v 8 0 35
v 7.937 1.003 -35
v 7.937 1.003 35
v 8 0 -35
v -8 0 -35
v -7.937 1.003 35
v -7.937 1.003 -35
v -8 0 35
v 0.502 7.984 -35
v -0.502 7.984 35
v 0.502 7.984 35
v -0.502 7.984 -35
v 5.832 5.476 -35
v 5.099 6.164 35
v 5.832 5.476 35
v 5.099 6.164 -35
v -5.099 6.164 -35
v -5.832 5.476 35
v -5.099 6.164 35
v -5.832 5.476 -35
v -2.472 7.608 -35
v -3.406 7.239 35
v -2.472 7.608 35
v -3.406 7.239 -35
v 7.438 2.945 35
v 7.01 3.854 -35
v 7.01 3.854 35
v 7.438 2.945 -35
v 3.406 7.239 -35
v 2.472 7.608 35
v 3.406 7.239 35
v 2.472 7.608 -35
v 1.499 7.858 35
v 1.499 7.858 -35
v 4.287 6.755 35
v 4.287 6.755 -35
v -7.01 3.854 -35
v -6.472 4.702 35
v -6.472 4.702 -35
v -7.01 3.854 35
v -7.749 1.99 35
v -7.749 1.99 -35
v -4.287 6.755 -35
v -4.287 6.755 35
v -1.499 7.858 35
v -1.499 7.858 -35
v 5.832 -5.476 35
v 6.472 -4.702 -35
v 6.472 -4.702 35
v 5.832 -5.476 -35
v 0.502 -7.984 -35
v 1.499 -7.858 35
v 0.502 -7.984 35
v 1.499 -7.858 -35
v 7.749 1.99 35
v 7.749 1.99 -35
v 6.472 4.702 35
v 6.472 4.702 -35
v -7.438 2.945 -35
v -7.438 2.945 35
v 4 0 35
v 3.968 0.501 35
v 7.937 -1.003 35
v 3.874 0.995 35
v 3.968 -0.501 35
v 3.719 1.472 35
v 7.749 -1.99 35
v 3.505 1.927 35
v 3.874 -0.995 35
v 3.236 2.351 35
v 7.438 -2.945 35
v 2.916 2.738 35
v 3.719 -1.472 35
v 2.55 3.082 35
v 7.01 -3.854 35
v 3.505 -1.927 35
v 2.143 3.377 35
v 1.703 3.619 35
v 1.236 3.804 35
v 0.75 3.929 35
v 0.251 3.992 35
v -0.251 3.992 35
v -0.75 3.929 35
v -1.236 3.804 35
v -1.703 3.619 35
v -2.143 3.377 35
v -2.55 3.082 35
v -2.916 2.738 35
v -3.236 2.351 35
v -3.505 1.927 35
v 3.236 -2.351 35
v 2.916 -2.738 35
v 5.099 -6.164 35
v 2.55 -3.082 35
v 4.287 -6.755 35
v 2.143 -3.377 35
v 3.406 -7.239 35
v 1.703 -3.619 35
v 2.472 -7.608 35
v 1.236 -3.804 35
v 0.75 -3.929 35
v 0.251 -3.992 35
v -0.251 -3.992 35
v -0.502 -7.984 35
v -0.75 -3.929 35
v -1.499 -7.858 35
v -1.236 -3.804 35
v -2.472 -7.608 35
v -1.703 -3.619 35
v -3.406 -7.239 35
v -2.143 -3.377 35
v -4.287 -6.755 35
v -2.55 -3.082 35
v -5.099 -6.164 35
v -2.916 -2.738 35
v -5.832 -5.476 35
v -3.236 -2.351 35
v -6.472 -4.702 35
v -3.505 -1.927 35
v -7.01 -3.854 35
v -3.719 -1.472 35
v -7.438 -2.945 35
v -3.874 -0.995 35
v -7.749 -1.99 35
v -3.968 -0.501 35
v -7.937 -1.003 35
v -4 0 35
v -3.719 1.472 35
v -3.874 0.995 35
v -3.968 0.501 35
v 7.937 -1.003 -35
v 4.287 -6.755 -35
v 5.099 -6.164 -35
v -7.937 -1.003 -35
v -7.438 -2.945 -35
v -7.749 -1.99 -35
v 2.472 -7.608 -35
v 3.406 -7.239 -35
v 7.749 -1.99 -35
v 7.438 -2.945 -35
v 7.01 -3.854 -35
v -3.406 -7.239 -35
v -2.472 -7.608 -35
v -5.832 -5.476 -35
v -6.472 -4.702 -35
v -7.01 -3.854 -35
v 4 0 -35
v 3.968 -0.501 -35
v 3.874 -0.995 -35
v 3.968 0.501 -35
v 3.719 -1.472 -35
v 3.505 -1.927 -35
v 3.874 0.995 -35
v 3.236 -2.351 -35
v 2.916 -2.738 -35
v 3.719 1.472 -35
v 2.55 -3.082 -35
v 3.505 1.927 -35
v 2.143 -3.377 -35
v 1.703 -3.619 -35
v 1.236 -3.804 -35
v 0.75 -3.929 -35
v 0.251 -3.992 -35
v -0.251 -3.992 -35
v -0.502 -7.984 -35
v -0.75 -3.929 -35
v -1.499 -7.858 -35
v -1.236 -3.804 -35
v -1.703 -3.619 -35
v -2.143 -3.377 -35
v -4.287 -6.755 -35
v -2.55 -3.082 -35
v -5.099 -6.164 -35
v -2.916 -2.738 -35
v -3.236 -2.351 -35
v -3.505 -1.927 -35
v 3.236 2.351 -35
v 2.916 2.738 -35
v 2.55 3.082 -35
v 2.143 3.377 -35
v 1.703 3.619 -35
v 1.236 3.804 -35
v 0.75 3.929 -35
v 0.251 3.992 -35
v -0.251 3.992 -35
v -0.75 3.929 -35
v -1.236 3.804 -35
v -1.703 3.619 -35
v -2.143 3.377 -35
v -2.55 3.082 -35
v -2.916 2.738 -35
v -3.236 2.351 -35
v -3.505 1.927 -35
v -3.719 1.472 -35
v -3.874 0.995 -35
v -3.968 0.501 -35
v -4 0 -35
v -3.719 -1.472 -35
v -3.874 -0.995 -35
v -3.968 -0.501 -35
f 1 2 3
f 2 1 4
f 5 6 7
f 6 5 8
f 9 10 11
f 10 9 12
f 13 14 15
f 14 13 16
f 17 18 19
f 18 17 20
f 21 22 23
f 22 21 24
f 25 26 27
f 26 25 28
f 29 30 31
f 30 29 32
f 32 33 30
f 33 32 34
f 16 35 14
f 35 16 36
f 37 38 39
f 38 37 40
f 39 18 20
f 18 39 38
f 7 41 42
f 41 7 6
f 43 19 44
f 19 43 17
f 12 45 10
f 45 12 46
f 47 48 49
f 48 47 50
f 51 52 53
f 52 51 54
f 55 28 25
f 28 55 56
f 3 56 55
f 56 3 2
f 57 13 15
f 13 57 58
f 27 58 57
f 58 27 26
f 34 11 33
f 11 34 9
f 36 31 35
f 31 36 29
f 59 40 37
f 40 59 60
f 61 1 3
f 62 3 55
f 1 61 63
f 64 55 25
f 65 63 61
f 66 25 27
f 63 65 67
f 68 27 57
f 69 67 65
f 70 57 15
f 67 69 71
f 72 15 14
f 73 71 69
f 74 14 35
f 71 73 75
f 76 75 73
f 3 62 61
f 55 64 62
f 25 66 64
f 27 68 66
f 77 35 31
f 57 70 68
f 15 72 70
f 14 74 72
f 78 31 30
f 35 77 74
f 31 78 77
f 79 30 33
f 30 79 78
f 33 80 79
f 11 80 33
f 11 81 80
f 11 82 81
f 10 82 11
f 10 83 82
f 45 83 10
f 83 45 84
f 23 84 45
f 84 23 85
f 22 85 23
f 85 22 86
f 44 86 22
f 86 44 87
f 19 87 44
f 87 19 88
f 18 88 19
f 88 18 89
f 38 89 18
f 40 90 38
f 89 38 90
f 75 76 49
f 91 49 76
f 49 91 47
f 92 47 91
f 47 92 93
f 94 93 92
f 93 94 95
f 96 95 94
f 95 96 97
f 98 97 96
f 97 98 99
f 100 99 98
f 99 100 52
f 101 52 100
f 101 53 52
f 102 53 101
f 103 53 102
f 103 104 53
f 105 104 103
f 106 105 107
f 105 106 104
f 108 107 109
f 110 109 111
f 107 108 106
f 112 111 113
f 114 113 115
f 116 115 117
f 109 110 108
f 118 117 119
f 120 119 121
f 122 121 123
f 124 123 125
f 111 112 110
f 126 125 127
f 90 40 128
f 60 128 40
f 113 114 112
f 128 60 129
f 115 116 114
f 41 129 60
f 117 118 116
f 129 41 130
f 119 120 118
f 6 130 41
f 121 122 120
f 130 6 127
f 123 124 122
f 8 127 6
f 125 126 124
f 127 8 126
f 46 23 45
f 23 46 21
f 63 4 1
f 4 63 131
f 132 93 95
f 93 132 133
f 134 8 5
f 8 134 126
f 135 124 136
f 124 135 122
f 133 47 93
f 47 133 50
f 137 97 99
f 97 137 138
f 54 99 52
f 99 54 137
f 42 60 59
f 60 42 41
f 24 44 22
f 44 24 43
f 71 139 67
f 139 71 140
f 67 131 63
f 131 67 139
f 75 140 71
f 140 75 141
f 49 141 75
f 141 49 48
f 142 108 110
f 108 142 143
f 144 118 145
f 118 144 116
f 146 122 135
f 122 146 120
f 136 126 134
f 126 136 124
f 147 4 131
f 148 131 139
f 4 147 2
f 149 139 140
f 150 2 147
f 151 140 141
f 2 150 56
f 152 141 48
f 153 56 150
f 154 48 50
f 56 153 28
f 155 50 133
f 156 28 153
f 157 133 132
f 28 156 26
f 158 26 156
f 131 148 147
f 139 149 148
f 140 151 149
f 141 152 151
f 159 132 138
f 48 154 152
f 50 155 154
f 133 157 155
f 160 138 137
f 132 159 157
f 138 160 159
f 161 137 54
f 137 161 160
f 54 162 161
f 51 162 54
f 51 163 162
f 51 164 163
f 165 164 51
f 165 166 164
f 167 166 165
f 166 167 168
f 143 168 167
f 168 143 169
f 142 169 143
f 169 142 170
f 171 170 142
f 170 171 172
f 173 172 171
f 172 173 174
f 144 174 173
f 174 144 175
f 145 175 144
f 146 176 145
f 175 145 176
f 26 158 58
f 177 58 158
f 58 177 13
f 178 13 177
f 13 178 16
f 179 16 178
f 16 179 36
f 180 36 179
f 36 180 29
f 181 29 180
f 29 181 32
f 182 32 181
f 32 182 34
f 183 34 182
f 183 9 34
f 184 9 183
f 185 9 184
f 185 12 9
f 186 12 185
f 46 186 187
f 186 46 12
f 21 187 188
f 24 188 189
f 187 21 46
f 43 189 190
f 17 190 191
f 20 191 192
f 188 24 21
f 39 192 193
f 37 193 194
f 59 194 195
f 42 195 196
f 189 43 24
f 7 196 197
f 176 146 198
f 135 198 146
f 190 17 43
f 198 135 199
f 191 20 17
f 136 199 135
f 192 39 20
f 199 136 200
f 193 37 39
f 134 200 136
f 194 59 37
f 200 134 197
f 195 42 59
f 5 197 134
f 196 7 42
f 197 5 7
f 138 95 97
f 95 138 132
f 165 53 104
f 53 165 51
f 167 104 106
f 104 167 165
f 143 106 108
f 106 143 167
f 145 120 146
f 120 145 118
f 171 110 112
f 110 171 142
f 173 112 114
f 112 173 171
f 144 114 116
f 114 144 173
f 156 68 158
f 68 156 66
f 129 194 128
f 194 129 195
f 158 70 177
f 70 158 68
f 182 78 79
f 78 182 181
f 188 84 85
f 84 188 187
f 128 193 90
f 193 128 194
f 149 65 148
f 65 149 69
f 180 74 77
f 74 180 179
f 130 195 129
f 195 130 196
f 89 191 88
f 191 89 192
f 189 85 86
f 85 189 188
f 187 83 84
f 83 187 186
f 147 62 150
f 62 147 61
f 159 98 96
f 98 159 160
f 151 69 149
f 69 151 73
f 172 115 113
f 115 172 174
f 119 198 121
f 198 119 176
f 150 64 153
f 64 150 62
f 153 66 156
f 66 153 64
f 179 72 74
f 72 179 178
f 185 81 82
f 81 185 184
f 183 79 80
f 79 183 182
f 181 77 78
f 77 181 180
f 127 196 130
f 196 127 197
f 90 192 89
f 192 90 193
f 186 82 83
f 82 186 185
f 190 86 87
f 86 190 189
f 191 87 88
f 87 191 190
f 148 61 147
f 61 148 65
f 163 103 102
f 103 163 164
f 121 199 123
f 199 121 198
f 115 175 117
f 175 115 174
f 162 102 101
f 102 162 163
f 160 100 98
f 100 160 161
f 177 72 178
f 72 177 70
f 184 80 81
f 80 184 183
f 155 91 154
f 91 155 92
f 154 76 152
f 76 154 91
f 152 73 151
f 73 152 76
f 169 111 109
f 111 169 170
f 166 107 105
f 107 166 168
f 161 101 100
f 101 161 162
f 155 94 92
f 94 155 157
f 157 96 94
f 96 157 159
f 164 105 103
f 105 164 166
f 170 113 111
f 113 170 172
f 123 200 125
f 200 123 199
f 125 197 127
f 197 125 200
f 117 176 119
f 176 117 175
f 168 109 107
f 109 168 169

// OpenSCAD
$fn = 50;


difference() {
	union() {
		translate(v = [0, 0, -35.0000000000]) {
			cylinder(h = 70, r = 8.0000000000);
		}
	}
	union() {
		translate(v = [0, 0, -100.0000000000]) {
			cylinder(h = 200, r = 4.0000000000);
		}
	}
}
